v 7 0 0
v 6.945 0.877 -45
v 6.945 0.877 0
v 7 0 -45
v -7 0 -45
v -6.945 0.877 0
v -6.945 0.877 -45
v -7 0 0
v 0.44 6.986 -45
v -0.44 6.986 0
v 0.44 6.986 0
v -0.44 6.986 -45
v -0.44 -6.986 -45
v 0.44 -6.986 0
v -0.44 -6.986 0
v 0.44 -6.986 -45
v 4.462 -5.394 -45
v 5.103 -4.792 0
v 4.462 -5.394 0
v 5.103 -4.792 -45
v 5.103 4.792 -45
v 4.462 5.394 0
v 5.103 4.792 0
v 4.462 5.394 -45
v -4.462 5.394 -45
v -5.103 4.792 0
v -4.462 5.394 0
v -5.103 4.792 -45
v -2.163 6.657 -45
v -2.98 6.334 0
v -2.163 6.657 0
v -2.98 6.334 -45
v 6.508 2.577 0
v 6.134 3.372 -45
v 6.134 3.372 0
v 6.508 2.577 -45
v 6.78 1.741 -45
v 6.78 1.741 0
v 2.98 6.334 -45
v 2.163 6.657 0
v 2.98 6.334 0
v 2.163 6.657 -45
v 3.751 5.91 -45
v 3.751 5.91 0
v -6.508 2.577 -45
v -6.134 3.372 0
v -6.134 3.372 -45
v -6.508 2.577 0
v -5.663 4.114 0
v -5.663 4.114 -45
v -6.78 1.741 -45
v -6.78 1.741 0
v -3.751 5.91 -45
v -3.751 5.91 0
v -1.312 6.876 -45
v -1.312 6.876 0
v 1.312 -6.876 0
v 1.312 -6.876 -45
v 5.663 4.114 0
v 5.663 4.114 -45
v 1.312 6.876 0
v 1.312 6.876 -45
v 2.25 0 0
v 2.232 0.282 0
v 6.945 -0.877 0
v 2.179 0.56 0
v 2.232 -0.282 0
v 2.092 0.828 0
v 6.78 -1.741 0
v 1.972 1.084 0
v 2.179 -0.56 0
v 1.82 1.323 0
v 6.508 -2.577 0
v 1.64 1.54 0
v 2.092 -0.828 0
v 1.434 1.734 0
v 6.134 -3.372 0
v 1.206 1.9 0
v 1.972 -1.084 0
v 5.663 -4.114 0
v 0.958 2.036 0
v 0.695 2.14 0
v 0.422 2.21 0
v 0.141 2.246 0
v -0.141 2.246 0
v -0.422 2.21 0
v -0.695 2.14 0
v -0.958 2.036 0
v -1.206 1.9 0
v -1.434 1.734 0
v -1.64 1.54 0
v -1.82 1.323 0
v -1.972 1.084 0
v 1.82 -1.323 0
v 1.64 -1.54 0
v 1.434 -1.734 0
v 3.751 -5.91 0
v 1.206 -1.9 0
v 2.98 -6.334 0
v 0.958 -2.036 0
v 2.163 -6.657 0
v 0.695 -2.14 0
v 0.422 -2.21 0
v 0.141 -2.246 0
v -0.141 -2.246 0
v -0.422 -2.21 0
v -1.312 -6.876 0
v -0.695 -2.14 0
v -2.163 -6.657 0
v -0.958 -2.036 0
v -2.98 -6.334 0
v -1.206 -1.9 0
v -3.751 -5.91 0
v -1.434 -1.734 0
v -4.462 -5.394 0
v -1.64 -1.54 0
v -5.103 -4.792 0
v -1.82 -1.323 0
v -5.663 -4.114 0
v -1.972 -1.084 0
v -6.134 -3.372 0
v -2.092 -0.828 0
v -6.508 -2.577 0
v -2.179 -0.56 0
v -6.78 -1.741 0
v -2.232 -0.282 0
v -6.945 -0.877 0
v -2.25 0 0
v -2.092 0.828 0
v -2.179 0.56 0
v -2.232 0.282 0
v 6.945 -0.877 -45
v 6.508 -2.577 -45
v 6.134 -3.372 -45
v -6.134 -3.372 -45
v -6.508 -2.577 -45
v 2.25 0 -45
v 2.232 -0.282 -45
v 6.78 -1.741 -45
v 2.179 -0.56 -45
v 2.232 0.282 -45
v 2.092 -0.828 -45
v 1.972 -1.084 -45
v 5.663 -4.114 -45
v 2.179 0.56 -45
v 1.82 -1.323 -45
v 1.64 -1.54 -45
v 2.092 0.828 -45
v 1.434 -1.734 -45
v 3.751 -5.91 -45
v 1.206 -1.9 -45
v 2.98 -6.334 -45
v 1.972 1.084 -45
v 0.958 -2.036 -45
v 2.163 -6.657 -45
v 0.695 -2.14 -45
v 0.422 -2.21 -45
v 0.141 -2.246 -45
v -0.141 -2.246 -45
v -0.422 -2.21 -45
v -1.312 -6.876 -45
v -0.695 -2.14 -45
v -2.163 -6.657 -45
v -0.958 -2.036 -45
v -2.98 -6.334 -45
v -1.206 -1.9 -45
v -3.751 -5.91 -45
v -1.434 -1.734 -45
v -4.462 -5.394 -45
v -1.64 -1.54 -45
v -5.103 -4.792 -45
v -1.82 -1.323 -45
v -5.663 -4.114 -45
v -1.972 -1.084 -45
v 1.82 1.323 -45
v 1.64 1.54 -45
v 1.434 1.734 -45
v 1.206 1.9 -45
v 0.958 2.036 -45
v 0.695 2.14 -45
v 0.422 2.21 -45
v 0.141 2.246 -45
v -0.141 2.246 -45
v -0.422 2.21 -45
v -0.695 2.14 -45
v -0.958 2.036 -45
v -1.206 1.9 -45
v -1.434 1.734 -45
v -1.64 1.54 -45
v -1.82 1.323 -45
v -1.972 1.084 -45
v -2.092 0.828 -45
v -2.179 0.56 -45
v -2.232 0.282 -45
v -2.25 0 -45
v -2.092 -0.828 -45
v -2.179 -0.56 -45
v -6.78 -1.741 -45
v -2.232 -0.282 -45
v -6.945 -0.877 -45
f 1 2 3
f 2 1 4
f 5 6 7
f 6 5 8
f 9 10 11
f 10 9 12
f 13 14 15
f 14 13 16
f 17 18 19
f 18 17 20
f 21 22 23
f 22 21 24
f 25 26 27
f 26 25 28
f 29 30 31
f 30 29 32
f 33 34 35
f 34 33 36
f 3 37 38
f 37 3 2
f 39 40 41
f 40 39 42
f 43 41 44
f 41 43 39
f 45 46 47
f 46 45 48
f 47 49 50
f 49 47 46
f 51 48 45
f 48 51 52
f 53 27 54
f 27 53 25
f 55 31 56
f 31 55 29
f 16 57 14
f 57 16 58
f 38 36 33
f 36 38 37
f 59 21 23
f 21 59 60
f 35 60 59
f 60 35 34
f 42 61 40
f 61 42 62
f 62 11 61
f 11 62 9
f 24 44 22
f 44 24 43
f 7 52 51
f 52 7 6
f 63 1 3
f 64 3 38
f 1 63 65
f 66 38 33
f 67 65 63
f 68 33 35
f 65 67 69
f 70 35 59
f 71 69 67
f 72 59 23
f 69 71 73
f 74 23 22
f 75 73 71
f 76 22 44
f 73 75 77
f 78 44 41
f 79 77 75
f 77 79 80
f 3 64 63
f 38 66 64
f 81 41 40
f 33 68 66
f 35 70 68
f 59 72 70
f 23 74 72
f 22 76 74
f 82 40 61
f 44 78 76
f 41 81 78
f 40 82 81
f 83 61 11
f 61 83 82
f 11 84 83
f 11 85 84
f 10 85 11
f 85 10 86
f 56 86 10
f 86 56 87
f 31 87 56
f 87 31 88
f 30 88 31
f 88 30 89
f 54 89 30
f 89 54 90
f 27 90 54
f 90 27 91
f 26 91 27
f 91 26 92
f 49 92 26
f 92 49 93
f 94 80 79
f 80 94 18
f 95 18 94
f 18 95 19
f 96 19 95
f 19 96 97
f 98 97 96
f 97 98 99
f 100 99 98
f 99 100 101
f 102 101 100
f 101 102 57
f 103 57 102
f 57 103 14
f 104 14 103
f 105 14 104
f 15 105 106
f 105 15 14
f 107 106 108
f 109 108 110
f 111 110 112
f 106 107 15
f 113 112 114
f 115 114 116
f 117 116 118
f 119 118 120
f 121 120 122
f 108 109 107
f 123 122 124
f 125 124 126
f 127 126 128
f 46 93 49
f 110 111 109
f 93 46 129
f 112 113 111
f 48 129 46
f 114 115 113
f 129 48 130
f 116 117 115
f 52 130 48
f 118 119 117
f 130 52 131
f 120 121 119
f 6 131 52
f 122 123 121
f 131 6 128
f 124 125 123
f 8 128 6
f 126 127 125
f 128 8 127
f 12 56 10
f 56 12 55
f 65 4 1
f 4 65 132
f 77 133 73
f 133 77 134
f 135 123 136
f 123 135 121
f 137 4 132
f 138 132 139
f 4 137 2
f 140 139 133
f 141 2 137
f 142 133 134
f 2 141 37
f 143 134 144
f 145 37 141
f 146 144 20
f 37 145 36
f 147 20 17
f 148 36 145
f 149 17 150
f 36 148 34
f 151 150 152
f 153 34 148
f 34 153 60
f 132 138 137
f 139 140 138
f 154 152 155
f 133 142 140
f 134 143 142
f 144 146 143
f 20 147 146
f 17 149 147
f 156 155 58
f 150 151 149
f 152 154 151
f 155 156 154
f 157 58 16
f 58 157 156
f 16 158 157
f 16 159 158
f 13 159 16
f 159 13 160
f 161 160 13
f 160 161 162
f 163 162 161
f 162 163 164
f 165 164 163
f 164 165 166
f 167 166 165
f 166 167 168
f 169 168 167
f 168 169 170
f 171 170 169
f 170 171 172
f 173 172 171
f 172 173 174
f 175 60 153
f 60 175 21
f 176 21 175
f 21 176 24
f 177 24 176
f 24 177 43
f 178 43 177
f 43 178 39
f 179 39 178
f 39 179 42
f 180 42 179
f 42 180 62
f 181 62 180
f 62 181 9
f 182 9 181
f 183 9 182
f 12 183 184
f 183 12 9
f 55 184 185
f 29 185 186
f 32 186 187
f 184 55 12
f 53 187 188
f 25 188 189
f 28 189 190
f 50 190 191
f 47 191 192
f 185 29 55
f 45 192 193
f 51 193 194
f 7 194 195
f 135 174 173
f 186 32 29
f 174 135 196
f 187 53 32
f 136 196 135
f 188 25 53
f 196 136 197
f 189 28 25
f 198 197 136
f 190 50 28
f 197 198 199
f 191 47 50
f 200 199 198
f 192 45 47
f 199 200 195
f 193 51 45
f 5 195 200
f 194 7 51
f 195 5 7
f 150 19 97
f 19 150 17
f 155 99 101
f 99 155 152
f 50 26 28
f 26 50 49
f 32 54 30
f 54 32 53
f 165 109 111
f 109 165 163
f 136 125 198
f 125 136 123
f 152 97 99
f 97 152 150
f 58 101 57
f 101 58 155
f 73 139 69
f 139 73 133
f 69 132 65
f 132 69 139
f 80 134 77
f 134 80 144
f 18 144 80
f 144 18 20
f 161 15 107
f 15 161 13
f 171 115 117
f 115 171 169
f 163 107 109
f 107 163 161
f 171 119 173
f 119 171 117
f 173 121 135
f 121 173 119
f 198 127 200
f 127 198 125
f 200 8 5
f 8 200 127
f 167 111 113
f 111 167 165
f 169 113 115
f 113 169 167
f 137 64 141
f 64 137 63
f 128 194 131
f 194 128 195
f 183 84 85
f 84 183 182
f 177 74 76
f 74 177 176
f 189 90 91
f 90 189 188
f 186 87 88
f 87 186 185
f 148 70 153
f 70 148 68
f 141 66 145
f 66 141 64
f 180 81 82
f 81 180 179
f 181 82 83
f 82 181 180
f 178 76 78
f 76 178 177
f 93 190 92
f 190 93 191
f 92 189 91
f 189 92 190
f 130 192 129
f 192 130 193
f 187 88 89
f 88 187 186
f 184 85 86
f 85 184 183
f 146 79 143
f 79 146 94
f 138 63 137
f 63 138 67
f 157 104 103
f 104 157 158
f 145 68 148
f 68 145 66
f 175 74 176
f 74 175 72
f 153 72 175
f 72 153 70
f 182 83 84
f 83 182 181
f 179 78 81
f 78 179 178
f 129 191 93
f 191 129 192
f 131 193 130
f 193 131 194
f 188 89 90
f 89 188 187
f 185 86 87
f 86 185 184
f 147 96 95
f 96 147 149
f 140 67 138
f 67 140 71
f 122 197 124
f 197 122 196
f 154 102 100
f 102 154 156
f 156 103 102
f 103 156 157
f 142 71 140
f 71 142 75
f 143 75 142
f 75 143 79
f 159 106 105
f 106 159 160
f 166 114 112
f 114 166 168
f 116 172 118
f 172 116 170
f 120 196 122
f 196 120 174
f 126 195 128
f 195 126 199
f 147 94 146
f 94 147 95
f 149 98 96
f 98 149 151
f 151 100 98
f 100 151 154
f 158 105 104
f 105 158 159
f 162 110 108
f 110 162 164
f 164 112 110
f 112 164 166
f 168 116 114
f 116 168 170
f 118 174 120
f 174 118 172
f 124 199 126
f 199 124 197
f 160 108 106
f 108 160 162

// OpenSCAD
$fn = 50;


difference() {
	union() {
		translate(v = [0, 0, -45.0000000000]) {
			cylinder(h = 45, r = 7.0000000000);
		}
	}
	union() {
		#translate(v = [0, 0, -45]) {
			cylinder(h = 45, r = 2.2500000000);
		}
	}
}
